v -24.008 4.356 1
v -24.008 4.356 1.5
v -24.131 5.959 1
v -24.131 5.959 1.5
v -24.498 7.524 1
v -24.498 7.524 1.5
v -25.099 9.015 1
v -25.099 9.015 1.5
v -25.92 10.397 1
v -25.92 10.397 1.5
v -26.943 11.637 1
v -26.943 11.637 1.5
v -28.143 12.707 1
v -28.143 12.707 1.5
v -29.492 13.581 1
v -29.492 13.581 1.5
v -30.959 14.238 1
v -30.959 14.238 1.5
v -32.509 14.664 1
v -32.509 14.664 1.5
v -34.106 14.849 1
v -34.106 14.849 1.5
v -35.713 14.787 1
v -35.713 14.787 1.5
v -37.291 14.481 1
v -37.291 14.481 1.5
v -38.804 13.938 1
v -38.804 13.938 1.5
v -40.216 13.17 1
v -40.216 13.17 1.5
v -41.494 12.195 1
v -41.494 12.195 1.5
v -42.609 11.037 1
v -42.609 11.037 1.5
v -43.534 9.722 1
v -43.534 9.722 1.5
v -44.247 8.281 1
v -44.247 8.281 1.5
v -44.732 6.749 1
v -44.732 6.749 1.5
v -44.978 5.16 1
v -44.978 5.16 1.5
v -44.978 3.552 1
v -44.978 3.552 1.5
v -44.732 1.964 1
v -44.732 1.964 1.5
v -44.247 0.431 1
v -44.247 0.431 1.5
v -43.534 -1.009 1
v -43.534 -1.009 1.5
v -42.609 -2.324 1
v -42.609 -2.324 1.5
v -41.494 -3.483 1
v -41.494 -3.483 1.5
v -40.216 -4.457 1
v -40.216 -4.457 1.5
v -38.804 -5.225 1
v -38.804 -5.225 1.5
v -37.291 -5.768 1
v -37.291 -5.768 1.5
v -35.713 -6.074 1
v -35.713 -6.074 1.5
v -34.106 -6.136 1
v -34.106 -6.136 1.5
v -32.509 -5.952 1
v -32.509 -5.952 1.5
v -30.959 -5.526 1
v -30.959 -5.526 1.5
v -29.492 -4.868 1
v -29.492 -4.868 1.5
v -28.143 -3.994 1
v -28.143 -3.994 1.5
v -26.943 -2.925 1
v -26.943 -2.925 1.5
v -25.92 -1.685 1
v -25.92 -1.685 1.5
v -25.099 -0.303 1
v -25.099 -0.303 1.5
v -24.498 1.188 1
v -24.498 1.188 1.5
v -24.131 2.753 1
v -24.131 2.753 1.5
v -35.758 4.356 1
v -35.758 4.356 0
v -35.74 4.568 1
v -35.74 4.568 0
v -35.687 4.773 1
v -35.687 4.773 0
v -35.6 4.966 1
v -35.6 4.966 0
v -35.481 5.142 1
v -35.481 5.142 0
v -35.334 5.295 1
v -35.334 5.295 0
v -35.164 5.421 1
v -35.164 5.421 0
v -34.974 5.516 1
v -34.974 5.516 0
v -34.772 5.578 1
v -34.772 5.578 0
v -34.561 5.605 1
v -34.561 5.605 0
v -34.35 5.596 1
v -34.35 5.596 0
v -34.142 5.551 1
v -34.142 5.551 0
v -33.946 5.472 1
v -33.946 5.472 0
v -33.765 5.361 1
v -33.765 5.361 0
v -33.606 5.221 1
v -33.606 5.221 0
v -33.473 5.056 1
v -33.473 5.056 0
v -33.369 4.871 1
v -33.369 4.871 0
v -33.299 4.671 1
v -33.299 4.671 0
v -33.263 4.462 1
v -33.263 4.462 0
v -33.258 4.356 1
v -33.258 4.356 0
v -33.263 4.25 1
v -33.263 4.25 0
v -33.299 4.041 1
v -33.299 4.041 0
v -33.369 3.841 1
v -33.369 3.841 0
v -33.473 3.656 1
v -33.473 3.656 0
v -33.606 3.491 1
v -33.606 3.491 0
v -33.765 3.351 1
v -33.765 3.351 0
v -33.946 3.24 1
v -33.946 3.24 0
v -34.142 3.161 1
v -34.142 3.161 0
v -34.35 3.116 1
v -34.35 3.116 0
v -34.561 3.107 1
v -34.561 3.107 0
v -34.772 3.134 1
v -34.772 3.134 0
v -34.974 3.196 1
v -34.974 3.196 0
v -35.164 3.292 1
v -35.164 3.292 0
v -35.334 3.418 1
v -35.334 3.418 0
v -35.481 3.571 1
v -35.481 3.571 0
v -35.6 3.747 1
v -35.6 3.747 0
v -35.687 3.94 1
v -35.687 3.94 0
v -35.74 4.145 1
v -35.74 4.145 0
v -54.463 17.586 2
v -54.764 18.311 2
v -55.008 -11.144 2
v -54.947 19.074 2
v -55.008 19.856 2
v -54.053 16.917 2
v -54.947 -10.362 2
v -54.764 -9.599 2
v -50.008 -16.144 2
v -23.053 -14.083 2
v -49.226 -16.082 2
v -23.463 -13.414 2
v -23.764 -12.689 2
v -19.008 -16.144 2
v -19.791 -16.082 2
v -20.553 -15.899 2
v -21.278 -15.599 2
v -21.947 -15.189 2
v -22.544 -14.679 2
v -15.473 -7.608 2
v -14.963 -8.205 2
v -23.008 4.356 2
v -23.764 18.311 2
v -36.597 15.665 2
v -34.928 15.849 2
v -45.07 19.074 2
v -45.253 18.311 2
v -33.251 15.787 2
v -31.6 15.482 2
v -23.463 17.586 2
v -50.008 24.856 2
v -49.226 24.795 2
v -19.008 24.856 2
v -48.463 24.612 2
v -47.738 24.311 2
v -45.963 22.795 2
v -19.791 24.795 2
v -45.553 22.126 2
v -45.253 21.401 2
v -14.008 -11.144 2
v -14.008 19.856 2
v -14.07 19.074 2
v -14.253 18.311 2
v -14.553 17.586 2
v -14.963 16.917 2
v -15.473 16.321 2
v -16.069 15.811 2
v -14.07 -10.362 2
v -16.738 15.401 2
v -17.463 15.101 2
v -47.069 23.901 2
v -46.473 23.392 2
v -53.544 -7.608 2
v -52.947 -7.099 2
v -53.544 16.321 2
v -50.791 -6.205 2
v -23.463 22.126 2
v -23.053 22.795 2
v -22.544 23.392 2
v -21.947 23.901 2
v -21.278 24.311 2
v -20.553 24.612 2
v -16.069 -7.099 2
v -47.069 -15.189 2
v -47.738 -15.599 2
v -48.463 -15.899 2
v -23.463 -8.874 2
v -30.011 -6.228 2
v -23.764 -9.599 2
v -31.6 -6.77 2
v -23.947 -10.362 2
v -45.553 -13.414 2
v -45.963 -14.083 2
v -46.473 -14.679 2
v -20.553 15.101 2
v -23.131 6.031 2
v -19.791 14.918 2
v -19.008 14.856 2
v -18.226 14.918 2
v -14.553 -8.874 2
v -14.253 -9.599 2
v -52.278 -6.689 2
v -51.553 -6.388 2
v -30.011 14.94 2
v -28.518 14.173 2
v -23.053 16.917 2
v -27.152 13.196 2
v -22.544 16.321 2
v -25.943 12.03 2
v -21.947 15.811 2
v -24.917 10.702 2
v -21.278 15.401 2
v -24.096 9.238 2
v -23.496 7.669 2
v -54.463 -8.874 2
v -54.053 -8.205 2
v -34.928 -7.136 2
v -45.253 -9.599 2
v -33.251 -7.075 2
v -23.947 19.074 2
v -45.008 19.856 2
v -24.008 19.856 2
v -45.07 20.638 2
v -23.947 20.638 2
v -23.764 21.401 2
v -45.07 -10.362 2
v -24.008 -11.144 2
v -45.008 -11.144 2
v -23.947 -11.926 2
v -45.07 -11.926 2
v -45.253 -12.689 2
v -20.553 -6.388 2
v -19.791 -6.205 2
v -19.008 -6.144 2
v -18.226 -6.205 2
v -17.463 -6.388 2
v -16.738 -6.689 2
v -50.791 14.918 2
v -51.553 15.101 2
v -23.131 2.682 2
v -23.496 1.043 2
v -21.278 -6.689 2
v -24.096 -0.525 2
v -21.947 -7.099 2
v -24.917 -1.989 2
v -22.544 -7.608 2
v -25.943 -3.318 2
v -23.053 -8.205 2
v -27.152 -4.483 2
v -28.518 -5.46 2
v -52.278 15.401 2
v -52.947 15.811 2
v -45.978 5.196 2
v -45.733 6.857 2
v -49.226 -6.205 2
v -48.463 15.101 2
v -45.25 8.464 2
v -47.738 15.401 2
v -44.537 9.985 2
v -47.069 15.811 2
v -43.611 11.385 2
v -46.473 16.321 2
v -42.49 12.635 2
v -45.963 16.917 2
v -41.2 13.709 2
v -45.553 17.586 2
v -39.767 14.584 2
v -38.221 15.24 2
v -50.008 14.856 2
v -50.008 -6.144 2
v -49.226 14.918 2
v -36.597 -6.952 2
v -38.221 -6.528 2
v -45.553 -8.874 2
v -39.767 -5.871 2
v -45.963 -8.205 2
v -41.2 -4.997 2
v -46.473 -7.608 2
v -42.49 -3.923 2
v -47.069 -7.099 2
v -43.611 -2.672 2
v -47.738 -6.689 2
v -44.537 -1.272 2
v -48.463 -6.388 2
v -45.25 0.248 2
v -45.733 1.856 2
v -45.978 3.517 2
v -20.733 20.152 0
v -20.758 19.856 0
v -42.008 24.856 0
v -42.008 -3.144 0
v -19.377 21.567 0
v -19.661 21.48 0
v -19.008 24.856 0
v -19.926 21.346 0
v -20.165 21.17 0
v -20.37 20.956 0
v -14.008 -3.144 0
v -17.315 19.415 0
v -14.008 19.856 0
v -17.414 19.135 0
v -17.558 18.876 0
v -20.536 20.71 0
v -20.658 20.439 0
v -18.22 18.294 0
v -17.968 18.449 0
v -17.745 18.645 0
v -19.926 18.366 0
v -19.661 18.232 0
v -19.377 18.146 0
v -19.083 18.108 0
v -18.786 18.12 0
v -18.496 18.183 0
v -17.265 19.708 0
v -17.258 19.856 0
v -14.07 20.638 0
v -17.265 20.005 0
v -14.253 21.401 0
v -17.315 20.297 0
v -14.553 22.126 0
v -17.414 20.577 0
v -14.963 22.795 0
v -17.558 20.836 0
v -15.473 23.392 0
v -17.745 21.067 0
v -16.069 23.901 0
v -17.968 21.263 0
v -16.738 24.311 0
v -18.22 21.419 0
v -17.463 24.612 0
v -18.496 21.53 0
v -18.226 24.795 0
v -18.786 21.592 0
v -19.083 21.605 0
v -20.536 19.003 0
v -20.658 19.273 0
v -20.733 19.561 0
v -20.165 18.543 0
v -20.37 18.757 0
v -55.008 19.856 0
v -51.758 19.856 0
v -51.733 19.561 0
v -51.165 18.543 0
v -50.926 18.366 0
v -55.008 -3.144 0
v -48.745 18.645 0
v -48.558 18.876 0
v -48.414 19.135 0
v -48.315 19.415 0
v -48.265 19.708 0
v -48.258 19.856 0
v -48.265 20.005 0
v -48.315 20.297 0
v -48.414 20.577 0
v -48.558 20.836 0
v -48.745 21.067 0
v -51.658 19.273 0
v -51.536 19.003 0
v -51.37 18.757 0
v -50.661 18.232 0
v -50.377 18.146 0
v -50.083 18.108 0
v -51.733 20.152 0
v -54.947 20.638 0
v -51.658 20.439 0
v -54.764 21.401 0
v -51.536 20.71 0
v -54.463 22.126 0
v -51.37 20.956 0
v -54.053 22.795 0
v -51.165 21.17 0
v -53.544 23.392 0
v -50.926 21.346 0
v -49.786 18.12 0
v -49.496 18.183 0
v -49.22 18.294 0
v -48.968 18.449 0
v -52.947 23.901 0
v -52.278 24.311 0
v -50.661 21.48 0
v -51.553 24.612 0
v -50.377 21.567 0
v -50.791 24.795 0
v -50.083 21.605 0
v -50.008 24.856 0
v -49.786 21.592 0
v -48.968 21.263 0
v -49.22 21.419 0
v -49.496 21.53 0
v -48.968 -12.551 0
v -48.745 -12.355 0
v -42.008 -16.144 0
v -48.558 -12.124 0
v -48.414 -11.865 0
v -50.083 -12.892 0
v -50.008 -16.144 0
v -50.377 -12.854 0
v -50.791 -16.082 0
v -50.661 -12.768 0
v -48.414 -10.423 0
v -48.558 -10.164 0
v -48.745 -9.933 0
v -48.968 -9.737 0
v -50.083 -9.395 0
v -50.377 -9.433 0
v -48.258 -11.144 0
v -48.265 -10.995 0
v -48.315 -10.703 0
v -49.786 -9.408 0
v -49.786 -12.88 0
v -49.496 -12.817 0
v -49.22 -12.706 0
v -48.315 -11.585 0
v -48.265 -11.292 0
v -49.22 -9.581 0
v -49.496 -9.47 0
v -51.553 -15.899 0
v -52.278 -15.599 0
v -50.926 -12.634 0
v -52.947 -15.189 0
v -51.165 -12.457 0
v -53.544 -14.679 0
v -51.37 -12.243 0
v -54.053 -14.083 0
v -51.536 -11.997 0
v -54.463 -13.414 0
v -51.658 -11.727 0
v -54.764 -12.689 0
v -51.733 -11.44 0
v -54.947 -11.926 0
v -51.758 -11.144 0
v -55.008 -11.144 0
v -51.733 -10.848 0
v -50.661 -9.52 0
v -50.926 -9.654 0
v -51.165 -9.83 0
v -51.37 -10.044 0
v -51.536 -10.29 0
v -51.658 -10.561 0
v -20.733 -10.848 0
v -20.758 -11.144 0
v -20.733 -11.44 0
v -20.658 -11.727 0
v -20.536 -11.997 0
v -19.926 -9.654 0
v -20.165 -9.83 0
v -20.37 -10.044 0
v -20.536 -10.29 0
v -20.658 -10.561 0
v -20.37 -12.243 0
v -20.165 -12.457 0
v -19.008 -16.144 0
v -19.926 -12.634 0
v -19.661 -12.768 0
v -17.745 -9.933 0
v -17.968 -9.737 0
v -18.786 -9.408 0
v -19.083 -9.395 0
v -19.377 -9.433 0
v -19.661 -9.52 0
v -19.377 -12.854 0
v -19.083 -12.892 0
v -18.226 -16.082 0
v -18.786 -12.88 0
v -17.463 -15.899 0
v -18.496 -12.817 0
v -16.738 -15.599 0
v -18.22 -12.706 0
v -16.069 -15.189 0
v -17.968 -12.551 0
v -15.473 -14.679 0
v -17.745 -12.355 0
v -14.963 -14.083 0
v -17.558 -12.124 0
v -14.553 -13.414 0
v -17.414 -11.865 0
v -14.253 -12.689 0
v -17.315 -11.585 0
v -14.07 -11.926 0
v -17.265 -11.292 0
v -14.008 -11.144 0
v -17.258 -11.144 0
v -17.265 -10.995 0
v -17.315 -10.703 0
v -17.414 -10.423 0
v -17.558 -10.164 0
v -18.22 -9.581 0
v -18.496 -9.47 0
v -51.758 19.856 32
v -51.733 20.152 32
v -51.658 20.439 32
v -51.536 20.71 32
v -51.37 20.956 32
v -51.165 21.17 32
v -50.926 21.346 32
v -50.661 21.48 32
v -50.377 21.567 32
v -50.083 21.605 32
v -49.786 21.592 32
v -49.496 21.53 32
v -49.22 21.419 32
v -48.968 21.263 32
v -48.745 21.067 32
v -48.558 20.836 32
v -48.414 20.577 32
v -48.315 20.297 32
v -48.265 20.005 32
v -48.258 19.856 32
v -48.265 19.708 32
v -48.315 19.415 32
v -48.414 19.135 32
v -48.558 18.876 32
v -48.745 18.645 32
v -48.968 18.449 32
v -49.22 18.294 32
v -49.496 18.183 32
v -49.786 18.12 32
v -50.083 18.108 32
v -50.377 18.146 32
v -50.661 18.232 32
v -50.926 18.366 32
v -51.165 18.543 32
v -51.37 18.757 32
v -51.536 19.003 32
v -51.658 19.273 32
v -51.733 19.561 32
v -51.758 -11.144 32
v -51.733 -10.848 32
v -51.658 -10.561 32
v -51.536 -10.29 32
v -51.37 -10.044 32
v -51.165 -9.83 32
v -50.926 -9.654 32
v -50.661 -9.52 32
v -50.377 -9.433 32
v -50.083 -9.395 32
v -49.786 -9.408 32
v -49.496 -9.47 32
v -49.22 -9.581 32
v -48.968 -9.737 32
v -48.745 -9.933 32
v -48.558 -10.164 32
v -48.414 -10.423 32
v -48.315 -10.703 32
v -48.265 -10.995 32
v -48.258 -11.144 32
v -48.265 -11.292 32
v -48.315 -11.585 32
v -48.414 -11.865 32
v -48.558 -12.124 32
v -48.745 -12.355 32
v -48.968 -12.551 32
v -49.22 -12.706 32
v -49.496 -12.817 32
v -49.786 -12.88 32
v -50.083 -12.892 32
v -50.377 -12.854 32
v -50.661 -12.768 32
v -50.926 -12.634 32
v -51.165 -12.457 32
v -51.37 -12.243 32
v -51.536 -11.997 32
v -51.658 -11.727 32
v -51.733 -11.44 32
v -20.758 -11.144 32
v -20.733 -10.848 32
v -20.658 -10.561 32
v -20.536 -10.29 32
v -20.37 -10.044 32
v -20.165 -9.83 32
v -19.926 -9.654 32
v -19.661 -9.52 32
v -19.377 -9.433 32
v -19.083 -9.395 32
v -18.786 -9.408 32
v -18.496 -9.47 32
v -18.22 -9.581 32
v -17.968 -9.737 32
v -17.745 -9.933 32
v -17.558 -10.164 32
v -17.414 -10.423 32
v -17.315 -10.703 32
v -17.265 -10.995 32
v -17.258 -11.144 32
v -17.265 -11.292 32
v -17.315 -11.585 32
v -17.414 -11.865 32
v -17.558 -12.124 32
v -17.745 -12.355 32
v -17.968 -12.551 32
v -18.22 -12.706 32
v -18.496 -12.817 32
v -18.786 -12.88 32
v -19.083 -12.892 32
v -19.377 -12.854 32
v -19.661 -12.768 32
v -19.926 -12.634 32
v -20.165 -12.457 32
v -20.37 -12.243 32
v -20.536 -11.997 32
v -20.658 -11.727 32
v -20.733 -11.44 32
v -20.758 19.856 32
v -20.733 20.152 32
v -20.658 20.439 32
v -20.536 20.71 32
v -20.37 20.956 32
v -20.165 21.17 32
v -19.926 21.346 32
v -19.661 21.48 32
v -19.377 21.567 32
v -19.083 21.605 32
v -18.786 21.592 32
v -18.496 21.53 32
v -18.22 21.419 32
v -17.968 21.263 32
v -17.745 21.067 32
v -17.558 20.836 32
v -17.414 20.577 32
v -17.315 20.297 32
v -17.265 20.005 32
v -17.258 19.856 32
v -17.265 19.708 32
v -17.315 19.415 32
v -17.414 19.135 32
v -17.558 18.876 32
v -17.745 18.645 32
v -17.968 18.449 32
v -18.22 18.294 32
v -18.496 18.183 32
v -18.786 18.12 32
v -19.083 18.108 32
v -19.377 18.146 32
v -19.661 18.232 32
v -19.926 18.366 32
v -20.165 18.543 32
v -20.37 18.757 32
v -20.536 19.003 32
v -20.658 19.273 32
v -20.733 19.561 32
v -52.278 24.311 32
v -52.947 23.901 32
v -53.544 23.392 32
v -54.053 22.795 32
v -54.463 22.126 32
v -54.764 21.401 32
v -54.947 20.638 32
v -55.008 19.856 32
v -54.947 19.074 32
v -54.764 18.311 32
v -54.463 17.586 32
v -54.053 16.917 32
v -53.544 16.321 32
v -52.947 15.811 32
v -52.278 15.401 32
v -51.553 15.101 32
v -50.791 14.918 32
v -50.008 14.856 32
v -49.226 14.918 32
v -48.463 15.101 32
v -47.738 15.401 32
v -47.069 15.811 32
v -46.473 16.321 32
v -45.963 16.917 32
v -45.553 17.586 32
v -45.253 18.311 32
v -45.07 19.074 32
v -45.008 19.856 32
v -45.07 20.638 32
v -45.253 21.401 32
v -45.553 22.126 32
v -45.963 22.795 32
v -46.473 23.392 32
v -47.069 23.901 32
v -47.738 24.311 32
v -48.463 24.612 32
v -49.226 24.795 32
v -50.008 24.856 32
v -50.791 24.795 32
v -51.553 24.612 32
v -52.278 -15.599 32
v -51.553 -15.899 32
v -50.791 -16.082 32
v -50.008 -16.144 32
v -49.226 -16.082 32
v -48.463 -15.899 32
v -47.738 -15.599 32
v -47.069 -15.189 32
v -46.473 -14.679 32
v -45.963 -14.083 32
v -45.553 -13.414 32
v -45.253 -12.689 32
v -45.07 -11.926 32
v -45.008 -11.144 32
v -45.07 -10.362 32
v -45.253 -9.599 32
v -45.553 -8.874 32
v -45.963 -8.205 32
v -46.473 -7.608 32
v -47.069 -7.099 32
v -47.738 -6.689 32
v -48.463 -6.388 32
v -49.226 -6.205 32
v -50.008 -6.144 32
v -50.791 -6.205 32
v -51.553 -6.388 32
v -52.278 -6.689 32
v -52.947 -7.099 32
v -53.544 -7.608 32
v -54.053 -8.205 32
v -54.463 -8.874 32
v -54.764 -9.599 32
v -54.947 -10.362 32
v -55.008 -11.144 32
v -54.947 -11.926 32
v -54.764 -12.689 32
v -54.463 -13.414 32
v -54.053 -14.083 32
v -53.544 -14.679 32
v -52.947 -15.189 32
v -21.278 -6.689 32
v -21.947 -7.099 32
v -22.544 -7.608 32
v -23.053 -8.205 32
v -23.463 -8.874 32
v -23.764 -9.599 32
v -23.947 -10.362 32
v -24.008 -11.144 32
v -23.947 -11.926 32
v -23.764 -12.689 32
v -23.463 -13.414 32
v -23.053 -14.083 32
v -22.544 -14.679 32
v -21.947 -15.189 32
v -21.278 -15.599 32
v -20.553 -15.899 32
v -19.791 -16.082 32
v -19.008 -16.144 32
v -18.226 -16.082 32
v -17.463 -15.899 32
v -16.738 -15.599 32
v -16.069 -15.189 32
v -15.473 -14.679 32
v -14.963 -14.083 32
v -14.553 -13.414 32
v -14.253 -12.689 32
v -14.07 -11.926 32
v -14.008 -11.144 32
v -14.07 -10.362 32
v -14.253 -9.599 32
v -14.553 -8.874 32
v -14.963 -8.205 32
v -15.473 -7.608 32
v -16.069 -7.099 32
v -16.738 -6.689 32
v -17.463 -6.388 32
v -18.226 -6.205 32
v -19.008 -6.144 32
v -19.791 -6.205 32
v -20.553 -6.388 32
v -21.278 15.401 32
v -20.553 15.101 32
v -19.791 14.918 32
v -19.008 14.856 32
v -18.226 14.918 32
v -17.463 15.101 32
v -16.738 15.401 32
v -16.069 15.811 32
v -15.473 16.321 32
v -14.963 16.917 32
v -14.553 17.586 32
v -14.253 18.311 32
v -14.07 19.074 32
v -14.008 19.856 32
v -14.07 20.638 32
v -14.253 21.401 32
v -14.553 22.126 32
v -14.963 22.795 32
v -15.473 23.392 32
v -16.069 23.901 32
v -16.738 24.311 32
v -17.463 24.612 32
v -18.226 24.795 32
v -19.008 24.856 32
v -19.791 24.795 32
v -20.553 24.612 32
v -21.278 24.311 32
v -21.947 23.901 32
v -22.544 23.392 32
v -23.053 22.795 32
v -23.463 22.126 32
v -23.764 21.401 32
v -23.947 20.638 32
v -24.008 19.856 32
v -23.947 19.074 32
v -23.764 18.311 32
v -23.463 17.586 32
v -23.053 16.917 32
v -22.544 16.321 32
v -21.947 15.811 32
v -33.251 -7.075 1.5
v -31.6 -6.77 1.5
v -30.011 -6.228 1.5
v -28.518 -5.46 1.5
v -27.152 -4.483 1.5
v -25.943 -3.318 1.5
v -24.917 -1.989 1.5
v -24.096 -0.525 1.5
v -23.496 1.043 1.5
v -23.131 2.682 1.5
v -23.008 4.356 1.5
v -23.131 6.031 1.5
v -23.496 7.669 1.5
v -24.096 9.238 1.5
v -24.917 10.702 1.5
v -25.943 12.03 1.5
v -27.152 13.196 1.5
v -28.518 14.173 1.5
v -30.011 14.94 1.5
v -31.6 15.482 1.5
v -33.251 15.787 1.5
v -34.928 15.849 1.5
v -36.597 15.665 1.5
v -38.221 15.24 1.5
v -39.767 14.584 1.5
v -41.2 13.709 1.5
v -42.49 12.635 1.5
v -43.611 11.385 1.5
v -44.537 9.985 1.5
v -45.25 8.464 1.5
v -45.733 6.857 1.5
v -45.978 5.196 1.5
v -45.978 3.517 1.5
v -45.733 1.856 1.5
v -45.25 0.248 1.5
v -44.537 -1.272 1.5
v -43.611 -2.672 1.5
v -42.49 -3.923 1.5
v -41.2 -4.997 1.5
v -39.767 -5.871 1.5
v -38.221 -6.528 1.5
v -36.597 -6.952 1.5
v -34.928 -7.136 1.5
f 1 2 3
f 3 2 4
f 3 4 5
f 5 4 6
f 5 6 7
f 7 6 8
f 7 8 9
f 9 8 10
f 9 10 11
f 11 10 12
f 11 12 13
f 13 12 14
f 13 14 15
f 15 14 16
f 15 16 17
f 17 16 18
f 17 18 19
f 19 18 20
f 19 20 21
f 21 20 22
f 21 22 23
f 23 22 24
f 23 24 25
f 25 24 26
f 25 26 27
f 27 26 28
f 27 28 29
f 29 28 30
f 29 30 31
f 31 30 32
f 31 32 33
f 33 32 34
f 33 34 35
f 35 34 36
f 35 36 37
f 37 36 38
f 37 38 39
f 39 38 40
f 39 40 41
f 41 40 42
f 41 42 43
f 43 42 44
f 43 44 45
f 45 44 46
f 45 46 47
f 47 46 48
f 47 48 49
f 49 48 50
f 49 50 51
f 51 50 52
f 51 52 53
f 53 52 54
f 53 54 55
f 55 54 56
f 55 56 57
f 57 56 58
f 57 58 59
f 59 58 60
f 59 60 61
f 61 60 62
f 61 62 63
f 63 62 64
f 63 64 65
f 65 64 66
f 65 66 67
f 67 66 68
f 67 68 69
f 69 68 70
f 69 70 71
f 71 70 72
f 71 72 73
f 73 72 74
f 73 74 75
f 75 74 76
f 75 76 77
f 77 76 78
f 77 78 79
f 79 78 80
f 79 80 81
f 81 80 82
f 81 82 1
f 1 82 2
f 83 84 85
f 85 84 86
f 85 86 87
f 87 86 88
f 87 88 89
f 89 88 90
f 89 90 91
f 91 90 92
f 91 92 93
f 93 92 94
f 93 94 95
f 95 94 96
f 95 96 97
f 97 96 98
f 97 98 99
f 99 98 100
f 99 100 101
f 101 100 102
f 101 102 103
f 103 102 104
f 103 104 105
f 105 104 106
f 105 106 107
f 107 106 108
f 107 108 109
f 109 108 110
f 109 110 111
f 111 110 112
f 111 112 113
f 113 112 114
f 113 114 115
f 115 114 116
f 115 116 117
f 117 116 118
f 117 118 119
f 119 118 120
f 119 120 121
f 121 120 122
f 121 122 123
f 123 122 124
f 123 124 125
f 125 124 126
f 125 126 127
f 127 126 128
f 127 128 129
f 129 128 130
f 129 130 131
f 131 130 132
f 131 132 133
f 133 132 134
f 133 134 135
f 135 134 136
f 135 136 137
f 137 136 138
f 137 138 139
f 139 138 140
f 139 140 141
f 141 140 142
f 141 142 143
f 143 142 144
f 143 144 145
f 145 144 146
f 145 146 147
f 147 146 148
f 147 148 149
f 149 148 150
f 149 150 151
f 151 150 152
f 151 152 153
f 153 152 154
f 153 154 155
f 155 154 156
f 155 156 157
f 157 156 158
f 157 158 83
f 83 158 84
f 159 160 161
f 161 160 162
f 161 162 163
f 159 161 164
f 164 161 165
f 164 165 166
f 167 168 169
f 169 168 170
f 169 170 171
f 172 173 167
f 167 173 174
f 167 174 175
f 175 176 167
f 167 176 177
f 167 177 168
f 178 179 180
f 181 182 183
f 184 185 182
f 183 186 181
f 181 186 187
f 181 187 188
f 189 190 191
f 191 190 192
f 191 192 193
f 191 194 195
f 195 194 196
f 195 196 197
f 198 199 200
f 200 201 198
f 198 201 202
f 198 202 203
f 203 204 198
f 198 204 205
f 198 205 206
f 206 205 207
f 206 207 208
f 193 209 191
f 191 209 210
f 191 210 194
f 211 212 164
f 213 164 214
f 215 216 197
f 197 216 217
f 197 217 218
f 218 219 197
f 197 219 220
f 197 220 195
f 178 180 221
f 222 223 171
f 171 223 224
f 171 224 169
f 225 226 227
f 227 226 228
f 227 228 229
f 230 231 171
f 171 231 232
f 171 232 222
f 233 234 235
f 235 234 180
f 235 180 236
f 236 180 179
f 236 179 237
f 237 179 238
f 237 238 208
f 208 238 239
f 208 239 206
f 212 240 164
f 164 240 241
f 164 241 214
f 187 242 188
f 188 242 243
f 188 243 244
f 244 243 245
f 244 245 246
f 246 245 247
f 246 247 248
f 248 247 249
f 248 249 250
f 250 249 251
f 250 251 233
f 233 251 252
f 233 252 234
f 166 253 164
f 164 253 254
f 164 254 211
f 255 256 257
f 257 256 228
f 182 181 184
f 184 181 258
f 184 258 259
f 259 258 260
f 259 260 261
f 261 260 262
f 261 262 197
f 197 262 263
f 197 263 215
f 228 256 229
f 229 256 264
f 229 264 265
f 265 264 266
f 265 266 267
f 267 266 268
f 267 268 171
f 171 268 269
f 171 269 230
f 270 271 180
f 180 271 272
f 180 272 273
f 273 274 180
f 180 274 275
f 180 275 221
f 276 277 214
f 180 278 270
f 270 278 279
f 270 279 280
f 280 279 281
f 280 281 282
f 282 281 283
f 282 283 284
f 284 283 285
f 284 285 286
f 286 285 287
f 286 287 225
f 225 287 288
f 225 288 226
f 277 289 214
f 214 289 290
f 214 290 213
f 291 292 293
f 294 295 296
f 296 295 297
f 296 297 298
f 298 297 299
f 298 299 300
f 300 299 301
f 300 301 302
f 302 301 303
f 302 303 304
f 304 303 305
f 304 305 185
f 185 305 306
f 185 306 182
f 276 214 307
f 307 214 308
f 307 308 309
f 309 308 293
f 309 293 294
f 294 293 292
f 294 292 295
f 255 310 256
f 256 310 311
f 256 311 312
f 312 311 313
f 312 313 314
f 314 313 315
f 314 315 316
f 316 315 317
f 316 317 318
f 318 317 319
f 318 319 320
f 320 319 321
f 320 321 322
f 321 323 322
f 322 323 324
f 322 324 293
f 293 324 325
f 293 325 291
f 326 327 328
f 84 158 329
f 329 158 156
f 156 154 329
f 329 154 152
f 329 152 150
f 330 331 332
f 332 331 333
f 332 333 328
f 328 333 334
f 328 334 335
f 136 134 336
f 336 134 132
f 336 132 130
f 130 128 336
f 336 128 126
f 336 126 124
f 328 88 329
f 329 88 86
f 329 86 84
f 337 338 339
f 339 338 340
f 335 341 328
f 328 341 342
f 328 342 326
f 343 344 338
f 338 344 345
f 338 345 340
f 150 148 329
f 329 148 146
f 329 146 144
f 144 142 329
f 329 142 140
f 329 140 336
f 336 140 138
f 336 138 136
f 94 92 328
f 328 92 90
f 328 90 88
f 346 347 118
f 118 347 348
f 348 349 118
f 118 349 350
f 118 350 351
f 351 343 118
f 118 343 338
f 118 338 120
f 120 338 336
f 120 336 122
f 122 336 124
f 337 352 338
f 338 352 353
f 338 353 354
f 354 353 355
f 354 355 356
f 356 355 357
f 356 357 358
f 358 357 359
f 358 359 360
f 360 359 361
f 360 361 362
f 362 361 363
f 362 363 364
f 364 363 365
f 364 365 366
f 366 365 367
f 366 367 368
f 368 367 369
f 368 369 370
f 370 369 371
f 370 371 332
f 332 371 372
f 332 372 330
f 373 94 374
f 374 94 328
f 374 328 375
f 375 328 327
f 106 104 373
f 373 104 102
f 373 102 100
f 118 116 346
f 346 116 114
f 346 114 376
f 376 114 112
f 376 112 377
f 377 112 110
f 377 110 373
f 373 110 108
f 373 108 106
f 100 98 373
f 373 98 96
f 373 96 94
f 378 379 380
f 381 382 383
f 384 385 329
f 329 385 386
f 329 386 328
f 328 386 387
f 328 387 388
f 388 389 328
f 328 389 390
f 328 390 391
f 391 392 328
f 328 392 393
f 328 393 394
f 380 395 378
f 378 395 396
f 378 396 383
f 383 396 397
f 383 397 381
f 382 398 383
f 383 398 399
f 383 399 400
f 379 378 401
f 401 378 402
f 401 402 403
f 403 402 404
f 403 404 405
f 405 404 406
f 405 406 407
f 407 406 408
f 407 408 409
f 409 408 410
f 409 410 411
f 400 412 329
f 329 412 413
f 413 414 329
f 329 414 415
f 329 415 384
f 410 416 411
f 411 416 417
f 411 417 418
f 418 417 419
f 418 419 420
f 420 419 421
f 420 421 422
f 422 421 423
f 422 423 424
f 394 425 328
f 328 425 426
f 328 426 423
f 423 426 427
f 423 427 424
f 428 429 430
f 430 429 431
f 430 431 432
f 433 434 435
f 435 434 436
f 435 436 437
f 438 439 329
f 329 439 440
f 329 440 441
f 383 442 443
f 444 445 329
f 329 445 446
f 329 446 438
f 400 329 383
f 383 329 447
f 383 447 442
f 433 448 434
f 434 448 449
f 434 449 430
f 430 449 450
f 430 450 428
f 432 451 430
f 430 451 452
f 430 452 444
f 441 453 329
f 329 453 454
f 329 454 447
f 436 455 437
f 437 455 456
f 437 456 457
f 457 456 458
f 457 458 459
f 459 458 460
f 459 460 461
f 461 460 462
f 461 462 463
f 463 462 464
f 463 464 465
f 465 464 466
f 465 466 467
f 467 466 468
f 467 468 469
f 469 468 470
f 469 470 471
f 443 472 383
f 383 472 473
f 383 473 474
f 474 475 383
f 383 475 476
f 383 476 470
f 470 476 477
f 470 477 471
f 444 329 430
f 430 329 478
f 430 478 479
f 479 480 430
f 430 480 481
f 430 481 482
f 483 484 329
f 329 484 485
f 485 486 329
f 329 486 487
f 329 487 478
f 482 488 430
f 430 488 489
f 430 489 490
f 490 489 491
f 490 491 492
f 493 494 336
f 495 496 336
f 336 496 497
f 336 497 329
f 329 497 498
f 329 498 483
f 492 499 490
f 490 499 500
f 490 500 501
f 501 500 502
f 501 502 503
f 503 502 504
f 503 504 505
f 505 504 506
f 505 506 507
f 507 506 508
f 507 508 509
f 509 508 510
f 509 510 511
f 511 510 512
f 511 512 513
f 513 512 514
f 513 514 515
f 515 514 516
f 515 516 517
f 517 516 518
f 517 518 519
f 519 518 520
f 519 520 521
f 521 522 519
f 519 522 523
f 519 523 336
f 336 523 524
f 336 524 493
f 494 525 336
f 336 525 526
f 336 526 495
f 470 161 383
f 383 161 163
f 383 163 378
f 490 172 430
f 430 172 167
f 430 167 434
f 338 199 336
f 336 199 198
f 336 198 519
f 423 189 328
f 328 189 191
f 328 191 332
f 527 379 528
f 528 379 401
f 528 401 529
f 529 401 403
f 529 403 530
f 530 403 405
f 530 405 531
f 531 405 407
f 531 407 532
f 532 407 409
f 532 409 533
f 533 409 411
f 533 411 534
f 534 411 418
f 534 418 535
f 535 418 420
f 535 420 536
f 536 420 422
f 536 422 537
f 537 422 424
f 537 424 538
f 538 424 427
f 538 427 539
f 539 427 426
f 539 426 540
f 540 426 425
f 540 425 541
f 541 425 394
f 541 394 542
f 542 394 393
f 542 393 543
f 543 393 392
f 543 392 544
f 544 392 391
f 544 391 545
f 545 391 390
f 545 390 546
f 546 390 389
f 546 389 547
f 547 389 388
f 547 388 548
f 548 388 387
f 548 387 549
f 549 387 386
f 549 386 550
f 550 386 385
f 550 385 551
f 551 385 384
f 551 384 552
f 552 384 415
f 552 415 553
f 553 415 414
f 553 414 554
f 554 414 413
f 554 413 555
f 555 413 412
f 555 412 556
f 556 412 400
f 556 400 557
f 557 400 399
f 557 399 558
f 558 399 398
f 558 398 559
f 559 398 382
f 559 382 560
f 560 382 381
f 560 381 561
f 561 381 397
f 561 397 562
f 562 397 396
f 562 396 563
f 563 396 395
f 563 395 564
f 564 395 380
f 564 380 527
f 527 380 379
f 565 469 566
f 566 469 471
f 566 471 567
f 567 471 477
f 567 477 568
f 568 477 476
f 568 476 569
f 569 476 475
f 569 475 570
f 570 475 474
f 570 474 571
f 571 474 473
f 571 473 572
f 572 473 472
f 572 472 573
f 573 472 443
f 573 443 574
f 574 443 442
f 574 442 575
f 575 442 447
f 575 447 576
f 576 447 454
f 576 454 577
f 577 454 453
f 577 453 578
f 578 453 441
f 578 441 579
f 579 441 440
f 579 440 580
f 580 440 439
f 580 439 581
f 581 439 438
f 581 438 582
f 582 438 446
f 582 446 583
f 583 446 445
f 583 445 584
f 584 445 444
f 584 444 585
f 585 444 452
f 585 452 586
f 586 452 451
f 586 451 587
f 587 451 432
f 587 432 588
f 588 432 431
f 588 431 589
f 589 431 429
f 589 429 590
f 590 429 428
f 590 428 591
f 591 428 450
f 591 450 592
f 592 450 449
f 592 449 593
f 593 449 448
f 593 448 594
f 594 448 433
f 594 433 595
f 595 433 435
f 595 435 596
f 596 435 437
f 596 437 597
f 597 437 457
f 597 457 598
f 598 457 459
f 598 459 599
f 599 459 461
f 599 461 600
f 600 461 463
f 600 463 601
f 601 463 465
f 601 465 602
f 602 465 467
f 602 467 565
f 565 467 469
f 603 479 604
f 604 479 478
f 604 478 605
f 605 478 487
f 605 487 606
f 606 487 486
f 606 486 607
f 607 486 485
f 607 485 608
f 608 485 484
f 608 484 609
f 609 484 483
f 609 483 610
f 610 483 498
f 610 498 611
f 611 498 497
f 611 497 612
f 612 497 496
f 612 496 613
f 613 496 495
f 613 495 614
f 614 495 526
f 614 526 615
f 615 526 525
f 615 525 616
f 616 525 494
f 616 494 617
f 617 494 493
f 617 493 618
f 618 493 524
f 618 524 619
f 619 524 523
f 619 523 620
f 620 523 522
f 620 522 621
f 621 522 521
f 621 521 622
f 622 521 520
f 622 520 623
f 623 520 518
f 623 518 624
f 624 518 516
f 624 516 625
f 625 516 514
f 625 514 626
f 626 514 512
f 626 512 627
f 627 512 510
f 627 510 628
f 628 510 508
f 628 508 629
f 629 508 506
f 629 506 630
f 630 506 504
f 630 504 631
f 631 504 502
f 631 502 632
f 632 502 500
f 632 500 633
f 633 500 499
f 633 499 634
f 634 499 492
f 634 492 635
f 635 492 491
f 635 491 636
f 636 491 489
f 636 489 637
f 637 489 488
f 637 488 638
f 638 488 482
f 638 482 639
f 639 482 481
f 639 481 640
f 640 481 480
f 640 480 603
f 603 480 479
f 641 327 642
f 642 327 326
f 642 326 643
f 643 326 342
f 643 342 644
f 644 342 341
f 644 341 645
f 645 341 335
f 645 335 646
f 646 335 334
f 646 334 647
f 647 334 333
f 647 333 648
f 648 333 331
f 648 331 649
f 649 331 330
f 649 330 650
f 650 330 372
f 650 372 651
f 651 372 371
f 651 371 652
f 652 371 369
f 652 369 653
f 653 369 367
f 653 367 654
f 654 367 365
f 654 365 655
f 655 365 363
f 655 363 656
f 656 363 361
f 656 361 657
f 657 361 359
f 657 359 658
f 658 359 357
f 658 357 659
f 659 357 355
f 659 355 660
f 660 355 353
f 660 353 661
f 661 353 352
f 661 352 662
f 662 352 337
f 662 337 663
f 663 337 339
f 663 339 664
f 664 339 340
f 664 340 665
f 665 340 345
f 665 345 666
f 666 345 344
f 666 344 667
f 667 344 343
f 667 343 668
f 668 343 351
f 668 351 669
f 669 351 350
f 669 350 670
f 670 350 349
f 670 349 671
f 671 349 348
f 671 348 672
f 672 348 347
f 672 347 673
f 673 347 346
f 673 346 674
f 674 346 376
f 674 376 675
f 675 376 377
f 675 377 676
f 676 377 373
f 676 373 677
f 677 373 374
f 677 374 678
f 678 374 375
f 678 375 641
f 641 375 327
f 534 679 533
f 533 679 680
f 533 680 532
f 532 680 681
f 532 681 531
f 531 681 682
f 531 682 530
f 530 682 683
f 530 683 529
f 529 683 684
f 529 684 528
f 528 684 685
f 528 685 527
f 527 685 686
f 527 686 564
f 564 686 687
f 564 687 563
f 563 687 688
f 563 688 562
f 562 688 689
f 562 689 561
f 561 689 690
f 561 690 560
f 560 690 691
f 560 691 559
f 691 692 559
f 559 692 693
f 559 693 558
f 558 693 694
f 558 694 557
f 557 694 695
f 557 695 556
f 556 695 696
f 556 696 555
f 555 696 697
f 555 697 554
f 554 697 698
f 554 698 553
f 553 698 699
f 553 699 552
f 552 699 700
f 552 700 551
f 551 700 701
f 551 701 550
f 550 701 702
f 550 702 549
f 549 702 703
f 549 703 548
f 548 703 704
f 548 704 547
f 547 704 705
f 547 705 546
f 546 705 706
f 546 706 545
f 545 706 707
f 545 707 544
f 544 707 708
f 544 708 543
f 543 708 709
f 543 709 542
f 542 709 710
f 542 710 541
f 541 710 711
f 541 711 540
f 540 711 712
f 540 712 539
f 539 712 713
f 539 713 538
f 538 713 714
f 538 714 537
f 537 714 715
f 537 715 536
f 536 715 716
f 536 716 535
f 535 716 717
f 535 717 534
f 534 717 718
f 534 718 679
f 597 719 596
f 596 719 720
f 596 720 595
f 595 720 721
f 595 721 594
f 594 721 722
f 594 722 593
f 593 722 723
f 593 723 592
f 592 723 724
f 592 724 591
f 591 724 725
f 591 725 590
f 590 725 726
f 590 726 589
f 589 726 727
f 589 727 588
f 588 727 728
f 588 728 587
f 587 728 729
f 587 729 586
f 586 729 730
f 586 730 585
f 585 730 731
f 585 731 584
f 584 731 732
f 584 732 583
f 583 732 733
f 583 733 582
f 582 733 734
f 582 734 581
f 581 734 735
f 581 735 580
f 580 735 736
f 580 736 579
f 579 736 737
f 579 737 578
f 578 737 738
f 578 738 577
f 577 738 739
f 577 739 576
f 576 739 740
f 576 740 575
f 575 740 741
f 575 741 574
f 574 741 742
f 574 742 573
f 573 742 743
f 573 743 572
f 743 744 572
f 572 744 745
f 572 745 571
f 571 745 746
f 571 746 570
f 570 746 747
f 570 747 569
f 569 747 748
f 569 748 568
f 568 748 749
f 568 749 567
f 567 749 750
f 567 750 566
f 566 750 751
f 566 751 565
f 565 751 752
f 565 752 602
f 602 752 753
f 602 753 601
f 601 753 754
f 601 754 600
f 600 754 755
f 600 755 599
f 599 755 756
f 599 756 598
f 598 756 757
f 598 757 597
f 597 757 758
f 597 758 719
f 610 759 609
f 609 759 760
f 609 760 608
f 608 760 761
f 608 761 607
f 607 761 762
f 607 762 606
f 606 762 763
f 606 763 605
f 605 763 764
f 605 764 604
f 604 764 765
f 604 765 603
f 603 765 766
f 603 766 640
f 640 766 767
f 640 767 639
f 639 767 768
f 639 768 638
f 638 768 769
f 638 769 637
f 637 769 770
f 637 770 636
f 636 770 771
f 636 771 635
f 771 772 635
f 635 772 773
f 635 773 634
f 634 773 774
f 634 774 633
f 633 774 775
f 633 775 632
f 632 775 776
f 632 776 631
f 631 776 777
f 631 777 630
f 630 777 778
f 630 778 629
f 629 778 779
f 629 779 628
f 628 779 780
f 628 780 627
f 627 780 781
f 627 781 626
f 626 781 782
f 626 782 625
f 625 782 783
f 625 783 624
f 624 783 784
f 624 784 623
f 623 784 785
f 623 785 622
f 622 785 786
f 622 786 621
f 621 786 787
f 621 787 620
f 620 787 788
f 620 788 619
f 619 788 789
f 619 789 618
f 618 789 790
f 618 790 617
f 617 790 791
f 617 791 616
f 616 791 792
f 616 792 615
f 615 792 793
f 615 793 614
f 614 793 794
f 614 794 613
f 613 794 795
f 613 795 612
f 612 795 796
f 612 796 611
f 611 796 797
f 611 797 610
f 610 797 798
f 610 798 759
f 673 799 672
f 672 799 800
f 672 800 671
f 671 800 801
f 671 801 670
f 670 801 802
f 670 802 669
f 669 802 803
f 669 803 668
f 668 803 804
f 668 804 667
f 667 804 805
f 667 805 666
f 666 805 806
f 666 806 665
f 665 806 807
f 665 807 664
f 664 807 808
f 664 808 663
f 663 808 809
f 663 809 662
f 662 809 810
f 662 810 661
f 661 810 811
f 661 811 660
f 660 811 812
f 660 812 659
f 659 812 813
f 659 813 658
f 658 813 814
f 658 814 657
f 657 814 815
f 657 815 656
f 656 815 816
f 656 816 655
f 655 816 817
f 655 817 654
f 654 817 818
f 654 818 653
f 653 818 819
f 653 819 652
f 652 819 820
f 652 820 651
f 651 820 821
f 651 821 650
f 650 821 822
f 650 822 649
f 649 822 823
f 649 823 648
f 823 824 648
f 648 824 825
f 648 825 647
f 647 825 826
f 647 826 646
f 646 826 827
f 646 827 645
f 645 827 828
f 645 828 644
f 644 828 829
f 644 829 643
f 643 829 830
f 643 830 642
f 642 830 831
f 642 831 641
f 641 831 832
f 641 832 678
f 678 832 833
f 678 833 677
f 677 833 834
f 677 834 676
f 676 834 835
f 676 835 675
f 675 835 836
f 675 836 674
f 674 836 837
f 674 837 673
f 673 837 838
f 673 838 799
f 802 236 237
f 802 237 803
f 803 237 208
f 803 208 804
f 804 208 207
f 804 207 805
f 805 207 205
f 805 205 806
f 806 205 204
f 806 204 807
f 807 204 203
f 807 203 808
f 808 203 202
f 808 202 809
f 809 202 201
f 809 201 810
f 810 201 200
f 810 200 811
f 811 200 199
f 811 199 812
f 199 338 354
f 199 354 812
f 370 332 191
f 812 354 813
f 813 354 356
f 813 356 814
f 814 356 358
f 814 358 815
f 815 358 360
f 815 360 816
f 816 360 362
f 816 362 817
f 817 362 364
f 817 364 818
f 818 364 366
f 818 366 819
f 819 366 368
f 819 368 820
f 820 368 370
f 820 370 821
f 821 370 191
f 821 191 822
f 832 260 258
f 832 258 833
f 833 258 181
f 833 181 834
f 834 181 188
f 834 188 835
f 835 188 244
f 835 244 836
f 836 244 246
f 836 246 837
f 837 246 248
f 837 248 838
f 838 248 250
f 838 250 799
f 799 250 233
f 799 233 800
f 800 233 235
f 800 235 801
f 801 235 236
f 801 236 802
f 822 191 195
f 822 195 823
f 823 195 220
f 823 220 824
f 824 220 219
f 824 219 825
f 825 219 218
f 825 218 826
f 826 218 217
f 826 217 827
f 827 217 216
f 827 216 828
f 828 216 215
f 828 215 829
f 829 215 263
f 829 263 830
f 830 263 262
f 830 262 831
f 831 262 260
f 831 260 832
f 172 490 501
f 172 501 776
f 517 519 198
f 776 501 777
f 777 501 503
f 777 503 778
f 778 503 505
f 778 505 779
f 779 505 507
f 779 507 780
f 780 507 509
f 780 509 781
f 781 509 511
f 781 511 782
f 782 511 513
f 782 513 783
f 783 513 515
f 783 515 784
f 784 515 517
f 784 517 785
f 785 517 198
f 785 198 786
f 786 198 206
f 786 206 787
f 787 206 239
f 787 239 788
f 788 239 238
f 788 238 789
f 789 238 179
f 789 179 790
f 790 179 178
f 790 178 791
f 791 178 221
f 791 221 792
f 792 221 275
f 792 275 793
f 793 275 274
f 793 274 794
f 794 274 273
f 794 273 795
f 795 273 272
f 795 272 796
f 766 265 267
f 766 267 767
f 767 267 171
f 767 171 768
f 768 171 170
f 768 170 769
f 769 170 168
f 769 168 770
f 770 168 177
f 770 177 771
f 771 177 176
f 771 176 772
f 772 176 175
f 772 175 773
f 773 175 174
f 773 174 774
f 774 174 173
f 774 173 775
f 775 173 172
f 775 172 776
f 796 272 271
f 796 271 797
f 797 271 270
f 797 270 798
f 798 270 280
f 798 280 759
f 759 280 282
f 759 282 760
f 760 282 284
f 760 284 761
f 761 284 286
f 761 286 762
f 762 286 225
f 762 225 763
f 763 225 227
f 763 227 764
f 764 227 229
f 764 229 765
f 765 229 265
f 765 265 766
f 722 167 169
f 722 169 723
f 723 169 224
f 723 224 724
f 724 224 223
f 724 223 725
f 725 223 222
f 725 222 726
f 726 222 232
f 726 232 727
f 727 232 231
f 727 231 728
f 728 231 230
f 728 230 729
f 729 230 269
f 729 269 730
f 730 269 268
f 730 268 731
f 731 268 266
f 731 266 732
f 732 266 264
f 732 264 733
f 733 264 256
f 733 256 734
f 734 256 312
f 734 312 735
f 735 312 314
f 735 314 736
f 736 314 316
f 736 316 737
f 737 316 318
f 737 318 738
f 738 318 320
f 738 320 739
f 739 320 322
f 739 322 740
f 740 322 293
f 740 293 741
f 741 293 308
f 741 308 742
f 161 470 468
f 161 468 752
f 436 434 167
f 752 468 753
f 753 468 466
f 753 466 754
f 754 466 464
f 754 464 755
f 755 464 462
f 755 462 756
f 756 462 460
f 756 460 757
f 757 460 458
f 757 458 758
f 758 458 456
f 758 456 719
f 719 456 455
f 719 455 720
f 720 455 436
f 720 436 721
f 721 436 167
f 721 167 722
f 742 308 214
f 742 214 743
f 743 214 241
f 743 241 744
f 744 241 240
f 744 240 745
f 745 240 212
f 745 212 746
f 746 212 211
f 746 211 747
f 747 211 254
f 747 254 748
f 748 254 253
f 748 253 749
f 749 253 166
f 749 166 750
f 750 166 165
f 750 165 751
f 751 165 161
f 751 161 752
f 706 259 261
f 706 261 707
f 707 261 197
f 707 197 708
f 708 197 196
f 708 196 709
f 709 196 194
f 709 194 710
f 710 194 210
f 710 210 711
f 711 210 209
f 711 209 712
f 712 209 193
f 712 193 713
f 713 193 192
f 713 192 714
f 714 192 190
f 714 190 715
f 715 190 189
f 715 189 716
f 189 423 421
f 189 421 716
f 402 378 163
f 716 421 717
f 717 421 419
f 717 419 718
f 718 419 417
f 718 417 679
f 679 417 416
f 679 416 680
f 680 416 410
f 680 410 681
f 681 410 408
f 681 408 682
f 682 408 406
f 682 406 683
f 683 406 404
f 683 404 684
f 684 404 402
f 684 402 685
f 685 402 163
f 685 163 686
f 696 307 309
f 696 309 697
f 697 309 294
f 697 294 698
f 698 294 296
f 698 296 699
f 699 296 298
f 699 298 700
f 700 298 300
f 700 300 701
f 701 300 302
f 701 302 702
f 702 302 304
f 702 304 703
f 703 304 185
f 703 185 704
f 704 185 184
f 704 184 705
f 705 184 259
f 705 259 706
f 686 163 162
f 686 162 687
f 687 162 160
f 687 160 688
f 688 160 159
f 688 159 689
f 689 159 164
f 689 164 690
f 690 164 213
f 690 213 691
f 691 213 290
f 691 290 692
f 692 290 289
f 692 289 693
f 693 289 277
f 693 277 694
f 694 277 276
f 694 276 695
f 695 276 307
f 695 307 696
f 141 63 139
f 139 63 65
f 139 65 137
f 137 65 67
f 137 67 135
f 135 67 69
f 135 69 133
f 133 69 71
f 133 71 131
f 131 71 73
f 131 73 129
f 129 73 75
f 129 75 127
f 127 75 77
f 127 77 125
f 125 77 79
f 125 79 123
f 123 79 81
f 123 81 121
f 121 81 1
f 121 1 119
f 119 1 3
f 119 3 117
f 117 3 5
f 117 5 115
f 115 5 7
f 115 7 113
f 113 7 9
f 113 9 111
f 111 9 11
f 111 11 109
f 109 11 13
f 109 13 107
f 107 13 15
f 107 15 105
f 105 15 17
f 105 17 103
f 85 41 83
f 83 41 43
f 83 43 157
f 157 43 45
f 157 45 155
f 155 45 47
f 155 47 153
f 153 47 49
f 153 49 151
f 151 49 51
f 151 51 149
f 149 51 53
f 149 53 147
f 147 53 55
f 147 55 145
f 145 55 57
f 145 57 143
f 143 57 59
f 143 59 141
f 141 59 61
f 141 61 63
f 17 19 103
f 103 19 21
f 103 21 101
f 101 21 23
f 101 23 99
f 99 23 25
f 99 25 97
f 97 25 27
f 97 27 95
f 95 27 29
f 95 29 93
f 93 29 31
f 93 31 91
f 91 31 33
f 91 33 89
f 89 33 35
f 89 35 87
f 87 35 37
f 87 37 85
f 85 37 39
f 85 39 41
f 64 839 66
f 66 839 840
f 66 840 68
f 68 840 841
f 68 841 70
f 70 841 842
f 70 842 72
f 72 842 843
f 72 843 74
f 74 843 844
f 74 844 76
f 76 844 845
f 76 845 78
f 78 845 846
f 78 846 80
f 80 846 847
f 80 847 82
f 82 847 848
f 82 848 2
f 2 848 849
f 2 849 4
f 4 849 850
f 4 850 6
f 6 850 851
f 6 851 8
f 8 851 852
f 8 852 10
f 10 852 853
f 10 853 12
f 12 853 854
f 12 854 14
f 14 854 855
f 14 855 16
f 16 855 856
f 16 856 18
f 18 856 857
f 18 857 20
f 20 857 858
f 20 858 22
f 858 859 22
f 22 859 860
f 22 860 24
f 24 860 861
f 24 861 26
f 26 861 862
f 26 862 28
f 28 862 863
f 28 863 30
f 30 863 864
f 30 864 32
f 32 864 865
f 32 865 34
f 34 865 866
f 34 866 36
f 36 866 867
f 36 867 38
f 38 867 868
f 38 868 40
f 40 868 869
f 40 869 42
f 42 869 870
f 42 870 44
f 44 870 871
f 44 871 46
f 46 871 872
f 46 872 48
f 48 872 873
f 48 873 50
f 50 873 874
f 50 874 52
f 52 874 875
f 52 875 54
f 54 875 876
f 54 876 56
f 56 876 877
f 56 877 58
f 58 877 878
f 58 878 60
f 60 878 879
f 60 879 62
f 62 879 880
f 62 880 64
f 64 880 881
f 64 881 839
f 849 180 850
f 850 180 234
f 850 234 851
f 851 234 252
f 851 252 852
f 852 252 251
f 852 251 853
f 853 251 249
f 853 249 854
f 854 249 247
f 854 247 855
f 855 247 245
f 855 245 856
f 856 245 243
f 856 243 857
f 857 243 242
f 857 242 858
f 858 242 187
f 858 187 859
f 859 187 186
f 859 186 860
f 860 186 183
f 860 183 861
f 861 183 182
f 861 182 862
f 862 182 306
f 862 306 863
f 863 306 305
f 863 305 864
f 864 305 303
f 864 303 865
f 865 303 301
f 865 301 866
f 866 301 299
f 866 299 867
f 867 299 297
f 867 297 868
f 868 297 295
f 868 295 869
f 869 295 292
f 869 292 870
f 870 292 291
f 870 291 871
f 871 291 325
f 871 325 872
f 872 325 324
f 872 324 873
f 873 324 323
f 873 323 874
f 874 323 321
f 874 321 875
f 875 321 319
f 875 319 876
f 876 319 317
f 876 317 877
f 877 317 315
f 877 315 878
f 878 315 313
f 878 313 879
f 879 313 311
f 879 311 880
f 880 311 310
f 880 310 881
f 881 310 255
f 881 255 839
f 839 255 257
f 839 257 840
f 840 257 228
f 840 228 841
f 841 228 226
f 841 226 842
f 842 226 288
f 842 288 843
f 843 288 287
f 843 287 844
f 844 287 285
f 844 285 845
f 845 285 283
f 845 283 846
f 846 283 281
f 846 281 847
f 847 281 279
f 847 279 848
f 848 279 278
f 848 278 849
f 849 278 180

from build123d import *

# Parameters (mm, degrees)
SKETCH1_W           = 41
SKETCH1_H           = 41
SKETCH1_R           = 1.75
SKETCH1_R_2         = 1.25
BOSS_EXTRUDE1_DEPTH = 2
SKETCH2_W           = 10
SKETCH2_H           = 10
SKETCH2_R           = 1.75
BOSS_EXTRUDE2_DEPTH = 30
FILLET1_R           = 5
SKETCH3_R           = 10.5
CUT_EXTRUDE1_DEPTH  = 1
SKETCH4_R           = 11.5
CUT_EXTRUDE2_DEPTH  = 0.5


with BuildPart() as part:
    # Sketch1 → Boss-Extrude1 (new body)
    with BuildSketch(Plane.XY):
        with Locations((-34.508333333, 4.35625)):
            Rectangle(SKETCH1_W, SKETCH1_H)
        with Locations((-50.008333333, 19.85625)):
            Circle(SKETCH1_R, mode=Mode.SUBTRACT)
        with Locations((-50.008333333, -11.14375)):
            Circle(SKETCH1_R, mode=Mode.SUBTRACT)
        with Locations((-19.008333333, -11.14375)):
            Circle(SKETCH1_R, mode=Mode.SUBTRACT)
        with Locations((-19.008333333, 19.85625)):
            Circle(SKETCH1_R, mode=Mode.SUBTRACT)
        with Locations((-34.508333333, 4.35625)):
            Circle(SKETCH1_R_2, mode=Mode.SUBTRACT)
    extrude(amount=BOSS_EXTRUDE1_DEPTH)

    # Sketch2 → Boss-Extrude2 (add)
    # profile 1 of 4: a face of its own
    with BuildSketch(Plane.XY.offset(2)):
        with Locations((-50.008333333, 19.85625)):
            Rectangle(SKETCH2_W, SKETCH2_H)
        with Locations((-50.008333333, 19.85625)):
            Circle(SKETCH2_R, mode=Mode.SUBTRACT)
    # profile 2 of 4: a face of its own
    with BuildSketch(Plane.XY.offset(2)):
        with Locations((-50.008333333, -11.14375)):
            Rectangle(SKETCH2_W, SKETCH2_H)
        with Locations((-50.008333333, -11.14375)):
            Circle(SKETCH2_R, mode=Mode.SUBTRACT)
    # profile 3 of 4: a face of its own
    with BuildSketch(Plane.XY.offset(2)):
        with Locations((-19.008333333, -11.14375)):
            Rectangle(SKETCH2_W, SKETCH2_H)
        with Locations((-19.008333333, -11.14375)):
            Circle(SKETCH2_R, mode=Mode.SUBTRACT)
    # profile 4 of 4: a face of its own
    with BuildSketch(Plane.XY.offset(2)):
        with Locations((-19.008333333, 19.85625)):
            Rectangle(SKETCH2_W, SKETCH2_H)
        with Locations((-19.008333333, 19.85625)):
            Circle(SKETCH2_R, mode=Mode.SUBTRACT)
    extrude(amount=BOSS_EXTRUDE2_DEPTH)

    # Fillet1
    fillet1_edges = [part.edges().sort_by_distance(p)[0] for p in [
        (-24.008333333, 24.85625, 17),
        (-24.008333333, -6.14375, 17),
        (-55.008333333, -6.14375, 17),
        (-55.008333333, 14.85625, 17),
        (-45.008333333, 24.85625, 17),
        (-45.008333333, -6.14375, 17),
        (-45.008333333, -16.14375, 17),
        (-24.008333333, -16.14375, 17),
        (-14.008333333, -6.14375, 17),
        (-14.008333333, 14.85625, 17),
        (-24.008333333, 14.85625, 17),
        (-45.008333333, 14.85625, 17),
        (-14.008333333, -16.14375, 16),
        (-14.008333333, 24.85625, 16),
        (-55.008333333, -16.14375, 16),
        (-55.008333333, 24.85625, 16),
    ]]
    fillet(fillet1_edges, radius=FILLET1_R - 0.0001)  # a hair under: the kernel refuses the full size

    # Sketch3 → Cut-Extrude1 (cut)
    with BuildSketch(Plane.XY.offset(2)):
        with Locations((-34.508333333, 4.35625)):
            Circle(SKETCH3_R)
    extrude(amount=-CUT_EXTRUDE1_DEPTH, mode=Mode.SUBTRACT)

    # Sketch4 → Cut-Extrude2 (cut)
    with BuildSketch(Plane.XY.offset(2)):
        with Locations((-34.508333333, 4.35625)):
            Circle(SKETCH4_R)
    extrude(amount=-CUT_EXTRUDE2_DEPTH, mode=Mode.SUBTRACT)


solid = part.part
